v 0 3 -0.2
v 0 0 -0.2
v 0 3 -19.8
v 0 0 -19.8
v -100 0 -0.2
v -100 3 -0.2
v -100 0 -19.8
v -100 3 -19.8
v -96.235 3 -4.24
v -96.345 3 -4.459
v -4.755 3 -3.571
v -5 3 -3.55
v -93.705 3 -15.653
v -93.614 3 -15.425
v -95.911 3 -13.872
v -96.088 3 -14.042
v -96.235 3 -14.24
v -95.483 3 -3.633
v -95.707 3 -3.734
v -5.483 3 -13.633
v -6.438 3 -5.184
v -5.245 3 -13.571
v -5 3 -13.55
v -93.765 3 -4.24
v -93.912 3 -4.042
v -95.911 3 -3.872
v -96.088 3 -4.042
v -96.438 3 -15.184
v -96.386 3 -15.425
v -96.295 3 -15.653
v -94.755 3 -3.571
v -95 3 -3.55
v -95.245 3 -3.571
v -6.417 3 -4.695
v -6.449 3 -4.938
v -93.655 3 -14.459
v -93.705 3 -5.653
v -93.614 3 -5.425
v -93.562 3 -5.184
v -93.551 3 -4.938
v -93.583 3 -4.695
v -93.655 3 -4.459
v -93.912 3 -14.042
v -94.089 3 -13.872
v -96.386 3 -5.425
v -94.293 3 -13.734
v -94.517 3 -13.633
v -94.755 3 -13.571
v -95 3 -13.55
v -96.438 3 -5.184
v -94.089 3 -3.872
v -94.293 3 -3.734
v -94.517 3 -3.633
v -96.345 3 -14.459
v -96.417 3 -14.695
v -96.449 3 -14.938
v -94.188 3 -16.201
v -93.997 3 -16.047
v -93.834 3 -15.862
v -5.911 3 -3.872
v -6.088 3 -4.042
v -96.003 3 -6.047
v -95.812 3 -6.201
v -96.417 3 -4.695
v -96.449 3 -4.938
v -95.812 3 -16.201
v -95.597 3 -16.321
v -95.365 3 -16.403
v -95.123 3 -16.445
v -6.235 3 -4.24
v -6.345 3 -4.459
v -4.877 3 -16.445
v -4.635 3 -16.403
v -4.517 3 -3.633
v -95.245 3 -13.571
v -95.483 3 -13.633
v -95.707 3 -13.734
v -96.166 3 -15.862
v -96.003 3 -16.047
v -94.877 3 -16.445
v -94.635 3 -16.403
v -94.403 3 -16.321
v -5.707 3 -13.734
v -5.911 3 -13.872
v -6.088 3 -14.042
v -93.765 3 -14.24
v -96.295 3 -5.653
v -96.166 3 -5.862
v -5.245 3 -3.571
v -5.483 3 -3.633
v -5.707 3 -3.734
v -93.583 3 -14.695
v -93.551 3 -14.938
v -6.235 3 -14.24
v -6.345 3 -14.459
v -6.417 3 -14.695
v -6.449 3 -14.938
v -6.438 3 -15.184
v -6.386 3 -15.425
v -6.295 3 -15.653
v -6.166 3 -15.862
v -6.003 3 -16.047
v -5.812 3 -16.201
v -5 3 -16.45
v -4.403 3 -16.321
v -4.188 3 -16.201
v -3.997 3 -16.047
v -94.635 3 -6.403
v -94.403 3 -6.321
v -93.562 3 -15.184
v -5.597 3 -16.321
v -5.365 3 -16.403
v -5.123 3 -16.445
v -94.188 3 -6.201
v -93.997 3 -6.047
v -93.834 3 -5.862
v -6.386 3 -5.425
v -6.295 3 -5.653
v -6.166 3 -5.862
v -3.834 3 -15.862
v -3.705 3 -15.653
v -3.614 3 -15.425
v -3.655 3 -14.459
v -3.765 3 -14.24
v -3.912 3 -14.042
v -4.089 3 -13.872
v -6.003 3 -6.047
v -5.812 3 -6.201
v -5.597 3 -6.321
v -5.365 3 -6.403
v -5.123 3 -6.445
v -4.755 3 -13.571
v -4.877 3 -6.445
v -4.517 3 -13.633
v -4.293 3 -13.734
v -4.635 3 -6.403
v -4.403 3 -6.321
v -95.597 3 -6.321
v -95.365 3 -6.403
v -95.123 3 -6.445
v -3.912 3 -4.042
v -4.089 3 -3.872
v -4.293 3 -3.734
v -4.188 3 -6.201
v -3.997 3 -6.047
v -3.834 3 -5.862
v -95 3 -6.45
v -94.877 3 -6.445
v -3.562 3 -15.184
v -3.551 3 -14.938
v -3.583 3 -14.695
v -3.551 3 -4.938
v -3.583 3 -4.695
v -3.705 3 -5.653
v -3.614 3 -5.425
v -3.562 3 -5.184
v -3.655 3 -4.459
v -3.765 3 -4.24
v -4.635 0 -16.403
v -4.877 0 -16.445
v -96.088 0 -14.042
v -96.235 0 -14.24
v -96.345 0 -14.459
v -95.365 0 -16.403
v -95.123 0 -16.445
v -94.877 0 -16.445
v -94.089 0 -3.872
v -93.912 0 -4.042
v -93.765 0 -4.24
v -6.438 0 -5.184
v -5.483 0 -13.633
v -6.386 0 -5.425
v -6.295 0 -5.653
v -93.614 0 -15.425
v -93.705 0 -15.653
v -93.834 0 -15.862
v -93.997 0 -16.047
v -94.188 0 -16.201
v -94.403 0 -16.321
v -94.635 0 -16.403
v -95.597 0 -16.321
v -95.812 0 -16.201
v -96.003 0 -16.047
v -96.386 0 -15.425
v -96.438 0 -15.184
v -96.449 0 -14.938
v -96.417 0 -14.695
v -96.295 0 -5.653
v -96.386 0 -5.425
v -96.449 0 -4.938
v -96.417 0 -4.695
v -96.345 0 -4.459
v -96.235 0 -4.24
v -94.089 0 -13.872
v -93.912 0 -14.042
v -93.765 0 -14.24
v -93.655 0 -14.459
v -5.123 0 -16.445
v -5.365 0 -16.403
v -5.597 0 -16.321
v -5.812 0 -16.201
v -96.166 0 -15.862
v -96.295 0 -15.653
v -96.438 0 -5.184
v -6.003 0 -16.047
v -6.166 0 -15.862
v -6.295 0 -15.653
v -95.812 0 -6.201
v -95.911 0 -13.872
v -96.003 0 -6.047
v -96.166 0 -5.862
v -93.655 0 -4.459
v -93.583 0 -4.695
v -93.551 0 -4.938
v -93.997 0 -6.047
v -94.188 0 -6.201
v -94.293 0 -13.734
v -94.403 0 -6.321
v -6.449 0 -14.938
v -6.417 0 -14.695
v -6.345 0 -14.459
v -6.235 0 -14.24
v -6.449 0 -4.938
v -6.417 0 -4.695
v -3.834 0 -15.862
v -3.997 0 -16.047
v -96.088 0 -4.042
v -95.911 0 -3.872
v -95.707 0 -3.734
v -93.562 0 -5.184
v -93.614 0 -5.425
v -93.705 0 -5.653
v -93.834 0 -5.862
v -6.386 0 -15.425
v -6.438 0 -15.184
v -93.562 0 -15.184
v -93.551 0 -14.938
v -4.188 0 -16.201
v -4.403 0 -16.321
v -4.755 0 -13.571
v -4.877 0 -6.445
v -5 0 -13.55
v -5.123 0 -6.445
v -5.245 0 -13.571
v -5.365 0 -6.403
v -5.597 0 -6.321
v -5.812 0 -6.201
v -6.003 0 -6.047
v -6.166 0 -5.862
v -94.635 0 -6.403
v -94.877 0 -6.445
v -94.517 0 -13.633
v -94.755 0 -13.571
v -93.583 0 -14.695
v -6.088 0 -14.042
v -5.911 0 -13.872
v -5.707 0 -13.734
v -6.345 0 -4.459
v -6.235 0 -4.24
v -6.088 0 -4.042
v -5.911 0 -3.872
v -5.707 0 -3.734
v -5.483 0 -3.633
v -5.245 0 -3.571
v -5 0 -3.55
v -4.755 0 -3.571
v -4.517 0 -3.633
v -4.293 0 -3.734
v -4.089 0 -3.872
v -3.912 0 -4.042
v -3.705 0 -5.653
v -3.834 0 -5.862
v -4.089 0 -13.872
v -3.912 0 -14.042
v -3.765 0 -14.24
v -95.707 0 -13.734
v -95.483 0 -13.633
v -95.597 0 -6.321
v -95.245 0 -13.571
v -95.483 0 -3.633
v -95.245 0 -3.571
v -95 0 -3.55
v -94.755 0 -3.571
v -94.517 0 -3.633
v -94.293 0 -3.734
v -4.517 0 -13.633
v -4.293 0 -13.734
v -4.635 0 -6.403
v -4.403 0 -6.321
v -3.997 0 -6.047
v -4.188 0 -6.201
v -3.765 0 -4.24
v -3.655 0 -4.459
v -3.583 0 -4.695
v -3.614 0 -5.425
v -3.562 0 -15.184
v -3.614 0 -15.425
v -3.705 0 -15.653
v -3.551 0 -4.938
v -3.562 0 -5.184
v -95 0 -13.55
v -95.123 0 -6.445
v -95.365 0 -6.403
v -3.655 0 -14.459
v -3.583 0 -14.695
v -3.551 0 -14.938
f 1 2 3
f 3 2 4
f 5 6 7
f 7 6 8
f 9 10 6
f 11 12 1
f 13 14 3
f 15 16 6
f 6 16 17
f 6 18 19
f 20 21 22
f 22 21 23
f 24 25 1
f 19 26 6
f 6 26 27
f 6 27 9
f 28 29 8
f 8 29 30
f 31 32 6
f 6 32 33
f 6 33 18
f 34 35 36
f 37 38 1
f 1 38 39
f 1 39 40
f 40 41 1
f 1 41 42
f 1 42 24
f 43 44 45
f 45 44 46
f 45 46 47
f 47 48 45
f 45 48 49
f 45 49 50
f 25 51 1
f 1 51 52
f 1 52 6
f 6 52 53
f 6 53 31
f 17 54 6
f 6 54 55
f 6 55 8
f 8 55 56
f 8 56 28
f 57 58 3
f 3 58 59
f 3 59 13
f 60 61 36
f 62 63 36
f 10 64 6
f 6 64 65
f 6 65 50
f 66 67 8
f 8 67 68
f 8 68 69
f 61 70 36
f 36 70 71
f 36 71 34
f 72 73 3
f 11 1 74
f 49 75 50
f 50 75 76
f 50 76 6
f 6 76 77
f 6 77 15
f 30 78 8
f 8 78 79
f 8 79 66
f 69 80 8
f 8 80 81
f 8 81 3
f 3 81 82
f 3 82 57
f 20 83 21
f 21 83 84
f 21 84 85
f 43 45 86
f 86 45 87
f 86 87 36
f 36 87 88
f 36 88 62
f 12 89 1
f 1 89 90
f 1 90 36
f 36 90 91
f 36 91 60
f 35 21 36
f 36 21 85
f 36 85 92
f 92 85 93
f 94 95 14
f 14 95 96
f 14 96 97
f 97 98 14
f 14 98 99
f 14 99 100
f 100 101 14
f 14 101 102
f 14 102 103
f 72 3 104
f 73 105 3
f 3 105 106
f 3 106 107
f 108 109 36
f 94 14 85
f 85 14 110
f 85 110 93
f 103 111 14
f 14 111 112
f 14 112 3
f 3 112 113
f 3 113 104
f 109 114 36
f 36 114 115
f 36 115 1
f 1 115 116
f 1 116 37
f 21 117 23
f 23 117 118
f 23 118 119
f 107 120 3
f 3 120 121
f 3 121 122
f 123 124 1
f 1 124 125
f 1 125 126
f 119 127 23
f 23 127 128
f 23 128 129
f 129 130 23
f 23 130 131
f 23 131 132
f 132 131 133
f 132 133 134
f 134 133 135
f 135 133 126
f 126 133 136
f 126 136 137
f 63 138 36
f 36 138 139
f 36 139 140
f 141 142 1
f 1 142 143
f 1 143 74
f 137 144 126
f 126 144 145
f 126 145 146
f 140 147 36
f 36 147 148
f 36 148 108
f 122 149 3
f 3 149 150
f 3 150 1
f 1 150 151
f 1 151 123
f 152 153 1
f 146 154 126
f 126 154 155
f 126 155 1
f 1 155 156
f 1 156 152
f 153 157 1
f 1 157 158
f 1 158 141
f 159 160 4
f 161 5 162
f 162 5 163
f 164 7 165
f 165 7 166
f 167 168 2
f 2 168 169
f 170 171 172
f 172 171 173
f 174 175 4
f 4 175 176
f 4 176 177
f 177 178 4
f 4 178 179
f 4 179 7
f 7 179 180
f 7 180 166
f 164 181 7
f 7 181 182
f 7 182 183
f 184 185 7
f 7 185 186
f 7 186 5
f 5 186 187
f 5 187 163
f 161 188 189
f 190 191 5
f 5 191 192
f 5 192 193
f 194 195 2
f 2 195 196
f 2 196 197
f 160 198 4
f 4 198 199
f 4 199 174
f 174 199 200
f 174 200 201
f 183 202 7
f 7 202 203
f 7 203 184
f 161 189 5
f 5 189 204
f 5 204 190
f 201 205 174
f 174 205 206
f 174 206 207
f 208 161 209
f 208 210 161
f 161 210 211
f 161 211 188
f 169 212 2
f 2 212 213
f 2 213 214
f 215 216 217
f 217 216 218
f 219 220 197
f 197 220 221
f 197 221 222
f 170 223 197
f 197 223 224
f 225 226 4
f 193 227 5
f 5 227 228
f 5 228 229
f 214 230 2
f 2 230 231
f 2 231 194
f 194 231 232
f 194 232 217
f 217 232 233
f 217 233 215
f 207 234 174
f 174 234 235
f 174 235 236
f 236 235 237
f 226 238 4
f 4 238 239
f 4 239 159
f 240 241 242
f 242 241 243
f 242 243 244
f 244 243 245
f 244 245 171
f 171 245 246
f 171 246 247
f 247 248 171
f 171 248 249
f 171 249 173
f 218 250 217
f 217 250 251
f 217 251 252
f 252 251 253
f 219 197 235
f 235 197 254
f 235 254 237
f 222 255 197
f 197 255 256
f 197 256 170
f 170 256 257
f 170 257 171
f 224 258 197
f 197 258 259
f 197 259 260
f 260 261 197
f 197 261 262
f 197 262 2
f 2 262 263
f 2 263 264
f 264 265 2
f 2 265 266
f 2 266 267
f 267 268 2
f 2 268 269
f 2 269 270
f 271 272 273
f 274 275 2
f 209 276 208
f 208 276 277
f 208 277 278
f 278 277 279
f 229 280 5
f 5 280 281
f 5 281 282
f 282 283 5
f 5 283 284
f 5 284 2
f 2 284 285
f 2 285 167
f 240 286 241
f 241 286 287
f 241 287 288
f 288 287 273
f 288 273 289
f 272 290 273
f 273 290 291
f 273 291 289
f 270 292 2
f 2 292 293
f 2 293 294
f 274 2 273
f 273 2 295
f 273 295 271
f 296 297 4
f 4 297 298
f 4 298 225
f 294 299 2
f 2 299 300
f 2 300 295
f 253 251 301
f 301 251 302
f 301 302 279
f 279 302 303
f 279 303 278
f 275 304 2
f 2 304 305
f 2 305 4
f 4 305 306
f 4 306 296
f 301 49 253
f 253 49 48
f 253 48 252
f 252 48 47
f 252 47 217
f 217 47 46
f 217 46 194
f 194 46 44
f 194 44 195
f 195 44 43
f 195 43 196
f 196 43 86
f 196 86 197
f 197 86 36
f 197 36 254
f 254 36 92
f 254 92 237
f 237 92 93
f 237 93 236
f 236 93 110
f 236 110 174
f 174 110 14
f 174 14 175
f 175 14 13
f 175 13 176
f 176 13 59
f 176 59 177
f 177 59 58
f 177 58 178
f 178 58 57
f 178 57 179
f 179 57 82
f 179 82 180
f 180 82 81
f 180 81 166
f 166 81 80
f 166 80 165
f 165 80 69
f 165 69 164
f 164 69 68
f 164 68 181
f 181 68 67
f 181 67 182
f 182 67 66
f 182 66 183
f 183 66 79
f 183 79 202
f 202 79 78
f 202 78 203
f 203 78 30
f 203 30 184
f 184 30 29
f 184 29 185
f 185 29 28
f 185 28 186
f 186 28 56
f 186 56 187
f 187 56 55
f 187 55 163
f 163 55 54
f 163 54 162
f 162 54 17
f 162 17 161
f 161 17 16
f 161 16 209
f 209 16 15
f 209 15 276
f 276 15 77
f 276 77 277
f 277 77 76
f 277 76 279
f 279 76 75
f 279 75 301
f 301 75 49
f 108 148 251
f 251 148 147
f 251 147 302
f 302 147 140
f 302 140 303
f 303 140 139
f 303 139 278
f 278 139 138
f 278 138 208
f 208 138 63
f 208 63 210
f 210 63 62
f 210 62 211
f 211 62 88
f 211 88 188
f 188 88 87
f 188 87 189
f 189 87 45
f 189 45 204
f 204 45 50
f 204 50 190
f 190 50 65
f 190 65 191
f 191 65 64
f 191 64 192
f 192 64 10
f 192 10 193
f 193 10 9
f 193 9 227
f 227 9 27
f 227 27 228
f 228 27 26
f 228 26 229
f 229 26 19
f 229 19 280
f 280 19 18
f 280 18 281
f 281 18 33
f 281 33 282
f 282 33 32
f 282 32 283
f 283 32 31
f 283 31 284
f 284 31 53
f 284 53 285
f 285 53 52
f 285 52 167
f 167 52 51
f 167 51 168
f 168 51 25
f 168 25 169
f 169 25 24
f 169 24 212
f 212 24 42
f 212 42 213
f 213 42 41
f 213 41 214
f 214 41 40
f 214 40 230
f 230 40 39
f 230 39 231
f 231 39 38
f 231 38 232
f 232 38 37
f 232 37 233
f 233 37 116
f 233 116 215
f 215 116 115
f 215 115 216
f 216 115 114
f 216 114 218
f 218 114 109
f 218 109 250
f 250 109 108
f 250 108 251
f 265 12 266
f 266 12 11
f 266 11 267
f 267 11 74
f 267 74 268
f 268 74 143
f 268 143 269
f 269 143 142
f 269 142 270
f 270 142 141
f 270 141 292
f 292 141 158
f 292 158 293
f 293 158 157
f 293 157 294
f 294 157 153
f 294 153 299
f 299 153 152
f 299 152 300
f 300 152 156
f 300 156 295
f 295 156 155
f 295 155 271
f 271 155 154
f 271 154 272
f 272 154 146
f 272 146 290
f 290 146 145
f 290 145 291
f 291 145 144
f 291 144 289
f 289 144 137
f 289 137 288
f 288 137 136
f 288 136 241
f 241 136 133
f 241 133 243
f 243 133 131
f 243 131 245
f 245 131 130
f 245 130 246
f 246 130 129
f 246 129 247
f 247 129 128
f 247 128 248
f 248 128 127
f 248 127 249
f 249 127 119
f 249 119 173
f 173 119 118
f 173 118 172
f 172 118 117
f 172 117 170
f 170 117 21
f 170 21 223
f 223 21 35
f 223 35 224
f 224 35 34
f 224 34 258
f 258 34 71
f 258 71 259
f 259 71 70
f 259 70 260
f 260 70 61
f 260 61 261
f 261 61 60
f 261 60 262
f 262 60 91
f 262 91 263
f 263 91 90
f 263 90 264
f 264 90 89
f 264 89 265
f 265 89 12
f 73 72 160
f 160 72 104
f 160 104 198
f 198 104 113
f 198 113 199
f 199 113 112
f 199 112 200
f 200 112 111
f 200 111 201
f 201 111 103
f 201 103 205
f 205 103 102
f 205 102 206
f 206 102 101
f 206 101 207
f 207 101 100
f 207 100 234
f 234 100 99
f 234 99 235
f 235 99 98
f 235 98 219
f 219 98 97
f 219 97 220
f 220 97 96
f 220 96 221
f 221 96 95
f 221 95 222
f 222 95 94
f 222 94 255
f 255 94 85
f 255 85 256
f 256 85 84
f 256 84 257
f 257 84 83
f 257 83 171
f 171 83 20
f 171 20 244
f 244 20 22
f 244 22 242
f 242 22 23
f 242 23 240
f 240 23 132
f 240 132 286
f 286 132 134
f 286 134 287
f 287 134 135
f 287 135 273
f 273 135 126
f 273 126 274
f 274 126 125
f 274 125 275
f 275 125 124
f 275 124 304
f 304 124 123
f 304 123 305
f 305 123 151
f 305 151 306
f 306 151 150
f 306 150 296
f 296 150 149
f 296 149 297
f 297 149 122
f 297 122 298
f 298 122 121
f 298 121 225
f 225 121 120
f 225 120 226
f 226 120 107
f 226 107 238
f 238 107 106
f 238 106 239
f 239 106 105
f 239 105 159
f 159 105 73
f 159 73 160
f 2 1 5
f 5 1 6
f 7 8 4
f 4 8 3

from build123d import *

# Parameters (mm, degrees)
SKETCH_1_W          = 100
SKETCH_1_H          = 20
EXTRUDE_1_DEPTH     = 3
SKETCH_2_R          = 1.45
CUT_EXTRUDE_1_DEPTH = 6
SKETCH_3_W          = 100
SKETCH_3_H          = 3
CUT_EXTRUDE_2_DEPTH = 0.2
SKETCH_5_W          = 100
SKETCH_5_H          = 3
CUT_EXTRUDE_3_DEPTH = 0.2


with BuildPart() as part:
    # 草图1 → 凸台-拉伸1 (new body)
    with BuildSketch(Plane(origin=(0, 0, 0), x_dir=(1, 0, 0), z_dir=(0, 1, 0))):
        with Locations((-50, 10)):
            Rectangle(SKETCH_1_W, SKETCH_1_H)
    extrude(amount=EXTRUDE_1_DEPTH)

    # 草图2 → 切除-拉伸1 (cut)
    with BuildSketch(Plane(origin=(0, 3, 0), x_dir=(1, 0, 0), z_dir=(0, 1, 0))):
        with Locations(Location((-95, 15, 0), (0, 0, 270))):
            Circle(SKETCH_2_R)
        with Locations(Location((-95, 5, 0), (0, 0, 270))):
            Circle(SKETCH_2_R)
        with Locations(Location((-5, 5, 0), (0, 0, 270))):
            Circle(SKETCH_2_R)
        with Locations(Location((-5, 15, 0), (0, 0, 270))):
            Circle(SKETCH_2_R)
    extrude(amount=-CUT_EXTRUDE_1_DEPTH, mode=Mode.SUBTRACT)

    # 草图3 → 切除-拉伸2 (cut)
    with BuildSketch(Plane.XY):
        with Locations((-50, 1.5)):
            Rectangle(SKETCH_3_W, SKETCH_3_H)
    extrude(amount=-CUT_EXTRUDE_2_DEPTH, mode=Mode.SUBTRACT)

    # 草图5 → 切除-拉伸3 (cut)
    with BuildSketch(Plane(origin=(0, 0, -20), x_dir=(-1, 0, 0), z_dir=(0, 0, -1))):
        with Locations((50, 1.5)):
            Rectangle(SKETCH_5_W, SKETCH_5_H)
    extrude(amount=-CUT_EXTRUDE_3_DEPTH, mode=Mode.SUBTRACT)


solid = part.part
